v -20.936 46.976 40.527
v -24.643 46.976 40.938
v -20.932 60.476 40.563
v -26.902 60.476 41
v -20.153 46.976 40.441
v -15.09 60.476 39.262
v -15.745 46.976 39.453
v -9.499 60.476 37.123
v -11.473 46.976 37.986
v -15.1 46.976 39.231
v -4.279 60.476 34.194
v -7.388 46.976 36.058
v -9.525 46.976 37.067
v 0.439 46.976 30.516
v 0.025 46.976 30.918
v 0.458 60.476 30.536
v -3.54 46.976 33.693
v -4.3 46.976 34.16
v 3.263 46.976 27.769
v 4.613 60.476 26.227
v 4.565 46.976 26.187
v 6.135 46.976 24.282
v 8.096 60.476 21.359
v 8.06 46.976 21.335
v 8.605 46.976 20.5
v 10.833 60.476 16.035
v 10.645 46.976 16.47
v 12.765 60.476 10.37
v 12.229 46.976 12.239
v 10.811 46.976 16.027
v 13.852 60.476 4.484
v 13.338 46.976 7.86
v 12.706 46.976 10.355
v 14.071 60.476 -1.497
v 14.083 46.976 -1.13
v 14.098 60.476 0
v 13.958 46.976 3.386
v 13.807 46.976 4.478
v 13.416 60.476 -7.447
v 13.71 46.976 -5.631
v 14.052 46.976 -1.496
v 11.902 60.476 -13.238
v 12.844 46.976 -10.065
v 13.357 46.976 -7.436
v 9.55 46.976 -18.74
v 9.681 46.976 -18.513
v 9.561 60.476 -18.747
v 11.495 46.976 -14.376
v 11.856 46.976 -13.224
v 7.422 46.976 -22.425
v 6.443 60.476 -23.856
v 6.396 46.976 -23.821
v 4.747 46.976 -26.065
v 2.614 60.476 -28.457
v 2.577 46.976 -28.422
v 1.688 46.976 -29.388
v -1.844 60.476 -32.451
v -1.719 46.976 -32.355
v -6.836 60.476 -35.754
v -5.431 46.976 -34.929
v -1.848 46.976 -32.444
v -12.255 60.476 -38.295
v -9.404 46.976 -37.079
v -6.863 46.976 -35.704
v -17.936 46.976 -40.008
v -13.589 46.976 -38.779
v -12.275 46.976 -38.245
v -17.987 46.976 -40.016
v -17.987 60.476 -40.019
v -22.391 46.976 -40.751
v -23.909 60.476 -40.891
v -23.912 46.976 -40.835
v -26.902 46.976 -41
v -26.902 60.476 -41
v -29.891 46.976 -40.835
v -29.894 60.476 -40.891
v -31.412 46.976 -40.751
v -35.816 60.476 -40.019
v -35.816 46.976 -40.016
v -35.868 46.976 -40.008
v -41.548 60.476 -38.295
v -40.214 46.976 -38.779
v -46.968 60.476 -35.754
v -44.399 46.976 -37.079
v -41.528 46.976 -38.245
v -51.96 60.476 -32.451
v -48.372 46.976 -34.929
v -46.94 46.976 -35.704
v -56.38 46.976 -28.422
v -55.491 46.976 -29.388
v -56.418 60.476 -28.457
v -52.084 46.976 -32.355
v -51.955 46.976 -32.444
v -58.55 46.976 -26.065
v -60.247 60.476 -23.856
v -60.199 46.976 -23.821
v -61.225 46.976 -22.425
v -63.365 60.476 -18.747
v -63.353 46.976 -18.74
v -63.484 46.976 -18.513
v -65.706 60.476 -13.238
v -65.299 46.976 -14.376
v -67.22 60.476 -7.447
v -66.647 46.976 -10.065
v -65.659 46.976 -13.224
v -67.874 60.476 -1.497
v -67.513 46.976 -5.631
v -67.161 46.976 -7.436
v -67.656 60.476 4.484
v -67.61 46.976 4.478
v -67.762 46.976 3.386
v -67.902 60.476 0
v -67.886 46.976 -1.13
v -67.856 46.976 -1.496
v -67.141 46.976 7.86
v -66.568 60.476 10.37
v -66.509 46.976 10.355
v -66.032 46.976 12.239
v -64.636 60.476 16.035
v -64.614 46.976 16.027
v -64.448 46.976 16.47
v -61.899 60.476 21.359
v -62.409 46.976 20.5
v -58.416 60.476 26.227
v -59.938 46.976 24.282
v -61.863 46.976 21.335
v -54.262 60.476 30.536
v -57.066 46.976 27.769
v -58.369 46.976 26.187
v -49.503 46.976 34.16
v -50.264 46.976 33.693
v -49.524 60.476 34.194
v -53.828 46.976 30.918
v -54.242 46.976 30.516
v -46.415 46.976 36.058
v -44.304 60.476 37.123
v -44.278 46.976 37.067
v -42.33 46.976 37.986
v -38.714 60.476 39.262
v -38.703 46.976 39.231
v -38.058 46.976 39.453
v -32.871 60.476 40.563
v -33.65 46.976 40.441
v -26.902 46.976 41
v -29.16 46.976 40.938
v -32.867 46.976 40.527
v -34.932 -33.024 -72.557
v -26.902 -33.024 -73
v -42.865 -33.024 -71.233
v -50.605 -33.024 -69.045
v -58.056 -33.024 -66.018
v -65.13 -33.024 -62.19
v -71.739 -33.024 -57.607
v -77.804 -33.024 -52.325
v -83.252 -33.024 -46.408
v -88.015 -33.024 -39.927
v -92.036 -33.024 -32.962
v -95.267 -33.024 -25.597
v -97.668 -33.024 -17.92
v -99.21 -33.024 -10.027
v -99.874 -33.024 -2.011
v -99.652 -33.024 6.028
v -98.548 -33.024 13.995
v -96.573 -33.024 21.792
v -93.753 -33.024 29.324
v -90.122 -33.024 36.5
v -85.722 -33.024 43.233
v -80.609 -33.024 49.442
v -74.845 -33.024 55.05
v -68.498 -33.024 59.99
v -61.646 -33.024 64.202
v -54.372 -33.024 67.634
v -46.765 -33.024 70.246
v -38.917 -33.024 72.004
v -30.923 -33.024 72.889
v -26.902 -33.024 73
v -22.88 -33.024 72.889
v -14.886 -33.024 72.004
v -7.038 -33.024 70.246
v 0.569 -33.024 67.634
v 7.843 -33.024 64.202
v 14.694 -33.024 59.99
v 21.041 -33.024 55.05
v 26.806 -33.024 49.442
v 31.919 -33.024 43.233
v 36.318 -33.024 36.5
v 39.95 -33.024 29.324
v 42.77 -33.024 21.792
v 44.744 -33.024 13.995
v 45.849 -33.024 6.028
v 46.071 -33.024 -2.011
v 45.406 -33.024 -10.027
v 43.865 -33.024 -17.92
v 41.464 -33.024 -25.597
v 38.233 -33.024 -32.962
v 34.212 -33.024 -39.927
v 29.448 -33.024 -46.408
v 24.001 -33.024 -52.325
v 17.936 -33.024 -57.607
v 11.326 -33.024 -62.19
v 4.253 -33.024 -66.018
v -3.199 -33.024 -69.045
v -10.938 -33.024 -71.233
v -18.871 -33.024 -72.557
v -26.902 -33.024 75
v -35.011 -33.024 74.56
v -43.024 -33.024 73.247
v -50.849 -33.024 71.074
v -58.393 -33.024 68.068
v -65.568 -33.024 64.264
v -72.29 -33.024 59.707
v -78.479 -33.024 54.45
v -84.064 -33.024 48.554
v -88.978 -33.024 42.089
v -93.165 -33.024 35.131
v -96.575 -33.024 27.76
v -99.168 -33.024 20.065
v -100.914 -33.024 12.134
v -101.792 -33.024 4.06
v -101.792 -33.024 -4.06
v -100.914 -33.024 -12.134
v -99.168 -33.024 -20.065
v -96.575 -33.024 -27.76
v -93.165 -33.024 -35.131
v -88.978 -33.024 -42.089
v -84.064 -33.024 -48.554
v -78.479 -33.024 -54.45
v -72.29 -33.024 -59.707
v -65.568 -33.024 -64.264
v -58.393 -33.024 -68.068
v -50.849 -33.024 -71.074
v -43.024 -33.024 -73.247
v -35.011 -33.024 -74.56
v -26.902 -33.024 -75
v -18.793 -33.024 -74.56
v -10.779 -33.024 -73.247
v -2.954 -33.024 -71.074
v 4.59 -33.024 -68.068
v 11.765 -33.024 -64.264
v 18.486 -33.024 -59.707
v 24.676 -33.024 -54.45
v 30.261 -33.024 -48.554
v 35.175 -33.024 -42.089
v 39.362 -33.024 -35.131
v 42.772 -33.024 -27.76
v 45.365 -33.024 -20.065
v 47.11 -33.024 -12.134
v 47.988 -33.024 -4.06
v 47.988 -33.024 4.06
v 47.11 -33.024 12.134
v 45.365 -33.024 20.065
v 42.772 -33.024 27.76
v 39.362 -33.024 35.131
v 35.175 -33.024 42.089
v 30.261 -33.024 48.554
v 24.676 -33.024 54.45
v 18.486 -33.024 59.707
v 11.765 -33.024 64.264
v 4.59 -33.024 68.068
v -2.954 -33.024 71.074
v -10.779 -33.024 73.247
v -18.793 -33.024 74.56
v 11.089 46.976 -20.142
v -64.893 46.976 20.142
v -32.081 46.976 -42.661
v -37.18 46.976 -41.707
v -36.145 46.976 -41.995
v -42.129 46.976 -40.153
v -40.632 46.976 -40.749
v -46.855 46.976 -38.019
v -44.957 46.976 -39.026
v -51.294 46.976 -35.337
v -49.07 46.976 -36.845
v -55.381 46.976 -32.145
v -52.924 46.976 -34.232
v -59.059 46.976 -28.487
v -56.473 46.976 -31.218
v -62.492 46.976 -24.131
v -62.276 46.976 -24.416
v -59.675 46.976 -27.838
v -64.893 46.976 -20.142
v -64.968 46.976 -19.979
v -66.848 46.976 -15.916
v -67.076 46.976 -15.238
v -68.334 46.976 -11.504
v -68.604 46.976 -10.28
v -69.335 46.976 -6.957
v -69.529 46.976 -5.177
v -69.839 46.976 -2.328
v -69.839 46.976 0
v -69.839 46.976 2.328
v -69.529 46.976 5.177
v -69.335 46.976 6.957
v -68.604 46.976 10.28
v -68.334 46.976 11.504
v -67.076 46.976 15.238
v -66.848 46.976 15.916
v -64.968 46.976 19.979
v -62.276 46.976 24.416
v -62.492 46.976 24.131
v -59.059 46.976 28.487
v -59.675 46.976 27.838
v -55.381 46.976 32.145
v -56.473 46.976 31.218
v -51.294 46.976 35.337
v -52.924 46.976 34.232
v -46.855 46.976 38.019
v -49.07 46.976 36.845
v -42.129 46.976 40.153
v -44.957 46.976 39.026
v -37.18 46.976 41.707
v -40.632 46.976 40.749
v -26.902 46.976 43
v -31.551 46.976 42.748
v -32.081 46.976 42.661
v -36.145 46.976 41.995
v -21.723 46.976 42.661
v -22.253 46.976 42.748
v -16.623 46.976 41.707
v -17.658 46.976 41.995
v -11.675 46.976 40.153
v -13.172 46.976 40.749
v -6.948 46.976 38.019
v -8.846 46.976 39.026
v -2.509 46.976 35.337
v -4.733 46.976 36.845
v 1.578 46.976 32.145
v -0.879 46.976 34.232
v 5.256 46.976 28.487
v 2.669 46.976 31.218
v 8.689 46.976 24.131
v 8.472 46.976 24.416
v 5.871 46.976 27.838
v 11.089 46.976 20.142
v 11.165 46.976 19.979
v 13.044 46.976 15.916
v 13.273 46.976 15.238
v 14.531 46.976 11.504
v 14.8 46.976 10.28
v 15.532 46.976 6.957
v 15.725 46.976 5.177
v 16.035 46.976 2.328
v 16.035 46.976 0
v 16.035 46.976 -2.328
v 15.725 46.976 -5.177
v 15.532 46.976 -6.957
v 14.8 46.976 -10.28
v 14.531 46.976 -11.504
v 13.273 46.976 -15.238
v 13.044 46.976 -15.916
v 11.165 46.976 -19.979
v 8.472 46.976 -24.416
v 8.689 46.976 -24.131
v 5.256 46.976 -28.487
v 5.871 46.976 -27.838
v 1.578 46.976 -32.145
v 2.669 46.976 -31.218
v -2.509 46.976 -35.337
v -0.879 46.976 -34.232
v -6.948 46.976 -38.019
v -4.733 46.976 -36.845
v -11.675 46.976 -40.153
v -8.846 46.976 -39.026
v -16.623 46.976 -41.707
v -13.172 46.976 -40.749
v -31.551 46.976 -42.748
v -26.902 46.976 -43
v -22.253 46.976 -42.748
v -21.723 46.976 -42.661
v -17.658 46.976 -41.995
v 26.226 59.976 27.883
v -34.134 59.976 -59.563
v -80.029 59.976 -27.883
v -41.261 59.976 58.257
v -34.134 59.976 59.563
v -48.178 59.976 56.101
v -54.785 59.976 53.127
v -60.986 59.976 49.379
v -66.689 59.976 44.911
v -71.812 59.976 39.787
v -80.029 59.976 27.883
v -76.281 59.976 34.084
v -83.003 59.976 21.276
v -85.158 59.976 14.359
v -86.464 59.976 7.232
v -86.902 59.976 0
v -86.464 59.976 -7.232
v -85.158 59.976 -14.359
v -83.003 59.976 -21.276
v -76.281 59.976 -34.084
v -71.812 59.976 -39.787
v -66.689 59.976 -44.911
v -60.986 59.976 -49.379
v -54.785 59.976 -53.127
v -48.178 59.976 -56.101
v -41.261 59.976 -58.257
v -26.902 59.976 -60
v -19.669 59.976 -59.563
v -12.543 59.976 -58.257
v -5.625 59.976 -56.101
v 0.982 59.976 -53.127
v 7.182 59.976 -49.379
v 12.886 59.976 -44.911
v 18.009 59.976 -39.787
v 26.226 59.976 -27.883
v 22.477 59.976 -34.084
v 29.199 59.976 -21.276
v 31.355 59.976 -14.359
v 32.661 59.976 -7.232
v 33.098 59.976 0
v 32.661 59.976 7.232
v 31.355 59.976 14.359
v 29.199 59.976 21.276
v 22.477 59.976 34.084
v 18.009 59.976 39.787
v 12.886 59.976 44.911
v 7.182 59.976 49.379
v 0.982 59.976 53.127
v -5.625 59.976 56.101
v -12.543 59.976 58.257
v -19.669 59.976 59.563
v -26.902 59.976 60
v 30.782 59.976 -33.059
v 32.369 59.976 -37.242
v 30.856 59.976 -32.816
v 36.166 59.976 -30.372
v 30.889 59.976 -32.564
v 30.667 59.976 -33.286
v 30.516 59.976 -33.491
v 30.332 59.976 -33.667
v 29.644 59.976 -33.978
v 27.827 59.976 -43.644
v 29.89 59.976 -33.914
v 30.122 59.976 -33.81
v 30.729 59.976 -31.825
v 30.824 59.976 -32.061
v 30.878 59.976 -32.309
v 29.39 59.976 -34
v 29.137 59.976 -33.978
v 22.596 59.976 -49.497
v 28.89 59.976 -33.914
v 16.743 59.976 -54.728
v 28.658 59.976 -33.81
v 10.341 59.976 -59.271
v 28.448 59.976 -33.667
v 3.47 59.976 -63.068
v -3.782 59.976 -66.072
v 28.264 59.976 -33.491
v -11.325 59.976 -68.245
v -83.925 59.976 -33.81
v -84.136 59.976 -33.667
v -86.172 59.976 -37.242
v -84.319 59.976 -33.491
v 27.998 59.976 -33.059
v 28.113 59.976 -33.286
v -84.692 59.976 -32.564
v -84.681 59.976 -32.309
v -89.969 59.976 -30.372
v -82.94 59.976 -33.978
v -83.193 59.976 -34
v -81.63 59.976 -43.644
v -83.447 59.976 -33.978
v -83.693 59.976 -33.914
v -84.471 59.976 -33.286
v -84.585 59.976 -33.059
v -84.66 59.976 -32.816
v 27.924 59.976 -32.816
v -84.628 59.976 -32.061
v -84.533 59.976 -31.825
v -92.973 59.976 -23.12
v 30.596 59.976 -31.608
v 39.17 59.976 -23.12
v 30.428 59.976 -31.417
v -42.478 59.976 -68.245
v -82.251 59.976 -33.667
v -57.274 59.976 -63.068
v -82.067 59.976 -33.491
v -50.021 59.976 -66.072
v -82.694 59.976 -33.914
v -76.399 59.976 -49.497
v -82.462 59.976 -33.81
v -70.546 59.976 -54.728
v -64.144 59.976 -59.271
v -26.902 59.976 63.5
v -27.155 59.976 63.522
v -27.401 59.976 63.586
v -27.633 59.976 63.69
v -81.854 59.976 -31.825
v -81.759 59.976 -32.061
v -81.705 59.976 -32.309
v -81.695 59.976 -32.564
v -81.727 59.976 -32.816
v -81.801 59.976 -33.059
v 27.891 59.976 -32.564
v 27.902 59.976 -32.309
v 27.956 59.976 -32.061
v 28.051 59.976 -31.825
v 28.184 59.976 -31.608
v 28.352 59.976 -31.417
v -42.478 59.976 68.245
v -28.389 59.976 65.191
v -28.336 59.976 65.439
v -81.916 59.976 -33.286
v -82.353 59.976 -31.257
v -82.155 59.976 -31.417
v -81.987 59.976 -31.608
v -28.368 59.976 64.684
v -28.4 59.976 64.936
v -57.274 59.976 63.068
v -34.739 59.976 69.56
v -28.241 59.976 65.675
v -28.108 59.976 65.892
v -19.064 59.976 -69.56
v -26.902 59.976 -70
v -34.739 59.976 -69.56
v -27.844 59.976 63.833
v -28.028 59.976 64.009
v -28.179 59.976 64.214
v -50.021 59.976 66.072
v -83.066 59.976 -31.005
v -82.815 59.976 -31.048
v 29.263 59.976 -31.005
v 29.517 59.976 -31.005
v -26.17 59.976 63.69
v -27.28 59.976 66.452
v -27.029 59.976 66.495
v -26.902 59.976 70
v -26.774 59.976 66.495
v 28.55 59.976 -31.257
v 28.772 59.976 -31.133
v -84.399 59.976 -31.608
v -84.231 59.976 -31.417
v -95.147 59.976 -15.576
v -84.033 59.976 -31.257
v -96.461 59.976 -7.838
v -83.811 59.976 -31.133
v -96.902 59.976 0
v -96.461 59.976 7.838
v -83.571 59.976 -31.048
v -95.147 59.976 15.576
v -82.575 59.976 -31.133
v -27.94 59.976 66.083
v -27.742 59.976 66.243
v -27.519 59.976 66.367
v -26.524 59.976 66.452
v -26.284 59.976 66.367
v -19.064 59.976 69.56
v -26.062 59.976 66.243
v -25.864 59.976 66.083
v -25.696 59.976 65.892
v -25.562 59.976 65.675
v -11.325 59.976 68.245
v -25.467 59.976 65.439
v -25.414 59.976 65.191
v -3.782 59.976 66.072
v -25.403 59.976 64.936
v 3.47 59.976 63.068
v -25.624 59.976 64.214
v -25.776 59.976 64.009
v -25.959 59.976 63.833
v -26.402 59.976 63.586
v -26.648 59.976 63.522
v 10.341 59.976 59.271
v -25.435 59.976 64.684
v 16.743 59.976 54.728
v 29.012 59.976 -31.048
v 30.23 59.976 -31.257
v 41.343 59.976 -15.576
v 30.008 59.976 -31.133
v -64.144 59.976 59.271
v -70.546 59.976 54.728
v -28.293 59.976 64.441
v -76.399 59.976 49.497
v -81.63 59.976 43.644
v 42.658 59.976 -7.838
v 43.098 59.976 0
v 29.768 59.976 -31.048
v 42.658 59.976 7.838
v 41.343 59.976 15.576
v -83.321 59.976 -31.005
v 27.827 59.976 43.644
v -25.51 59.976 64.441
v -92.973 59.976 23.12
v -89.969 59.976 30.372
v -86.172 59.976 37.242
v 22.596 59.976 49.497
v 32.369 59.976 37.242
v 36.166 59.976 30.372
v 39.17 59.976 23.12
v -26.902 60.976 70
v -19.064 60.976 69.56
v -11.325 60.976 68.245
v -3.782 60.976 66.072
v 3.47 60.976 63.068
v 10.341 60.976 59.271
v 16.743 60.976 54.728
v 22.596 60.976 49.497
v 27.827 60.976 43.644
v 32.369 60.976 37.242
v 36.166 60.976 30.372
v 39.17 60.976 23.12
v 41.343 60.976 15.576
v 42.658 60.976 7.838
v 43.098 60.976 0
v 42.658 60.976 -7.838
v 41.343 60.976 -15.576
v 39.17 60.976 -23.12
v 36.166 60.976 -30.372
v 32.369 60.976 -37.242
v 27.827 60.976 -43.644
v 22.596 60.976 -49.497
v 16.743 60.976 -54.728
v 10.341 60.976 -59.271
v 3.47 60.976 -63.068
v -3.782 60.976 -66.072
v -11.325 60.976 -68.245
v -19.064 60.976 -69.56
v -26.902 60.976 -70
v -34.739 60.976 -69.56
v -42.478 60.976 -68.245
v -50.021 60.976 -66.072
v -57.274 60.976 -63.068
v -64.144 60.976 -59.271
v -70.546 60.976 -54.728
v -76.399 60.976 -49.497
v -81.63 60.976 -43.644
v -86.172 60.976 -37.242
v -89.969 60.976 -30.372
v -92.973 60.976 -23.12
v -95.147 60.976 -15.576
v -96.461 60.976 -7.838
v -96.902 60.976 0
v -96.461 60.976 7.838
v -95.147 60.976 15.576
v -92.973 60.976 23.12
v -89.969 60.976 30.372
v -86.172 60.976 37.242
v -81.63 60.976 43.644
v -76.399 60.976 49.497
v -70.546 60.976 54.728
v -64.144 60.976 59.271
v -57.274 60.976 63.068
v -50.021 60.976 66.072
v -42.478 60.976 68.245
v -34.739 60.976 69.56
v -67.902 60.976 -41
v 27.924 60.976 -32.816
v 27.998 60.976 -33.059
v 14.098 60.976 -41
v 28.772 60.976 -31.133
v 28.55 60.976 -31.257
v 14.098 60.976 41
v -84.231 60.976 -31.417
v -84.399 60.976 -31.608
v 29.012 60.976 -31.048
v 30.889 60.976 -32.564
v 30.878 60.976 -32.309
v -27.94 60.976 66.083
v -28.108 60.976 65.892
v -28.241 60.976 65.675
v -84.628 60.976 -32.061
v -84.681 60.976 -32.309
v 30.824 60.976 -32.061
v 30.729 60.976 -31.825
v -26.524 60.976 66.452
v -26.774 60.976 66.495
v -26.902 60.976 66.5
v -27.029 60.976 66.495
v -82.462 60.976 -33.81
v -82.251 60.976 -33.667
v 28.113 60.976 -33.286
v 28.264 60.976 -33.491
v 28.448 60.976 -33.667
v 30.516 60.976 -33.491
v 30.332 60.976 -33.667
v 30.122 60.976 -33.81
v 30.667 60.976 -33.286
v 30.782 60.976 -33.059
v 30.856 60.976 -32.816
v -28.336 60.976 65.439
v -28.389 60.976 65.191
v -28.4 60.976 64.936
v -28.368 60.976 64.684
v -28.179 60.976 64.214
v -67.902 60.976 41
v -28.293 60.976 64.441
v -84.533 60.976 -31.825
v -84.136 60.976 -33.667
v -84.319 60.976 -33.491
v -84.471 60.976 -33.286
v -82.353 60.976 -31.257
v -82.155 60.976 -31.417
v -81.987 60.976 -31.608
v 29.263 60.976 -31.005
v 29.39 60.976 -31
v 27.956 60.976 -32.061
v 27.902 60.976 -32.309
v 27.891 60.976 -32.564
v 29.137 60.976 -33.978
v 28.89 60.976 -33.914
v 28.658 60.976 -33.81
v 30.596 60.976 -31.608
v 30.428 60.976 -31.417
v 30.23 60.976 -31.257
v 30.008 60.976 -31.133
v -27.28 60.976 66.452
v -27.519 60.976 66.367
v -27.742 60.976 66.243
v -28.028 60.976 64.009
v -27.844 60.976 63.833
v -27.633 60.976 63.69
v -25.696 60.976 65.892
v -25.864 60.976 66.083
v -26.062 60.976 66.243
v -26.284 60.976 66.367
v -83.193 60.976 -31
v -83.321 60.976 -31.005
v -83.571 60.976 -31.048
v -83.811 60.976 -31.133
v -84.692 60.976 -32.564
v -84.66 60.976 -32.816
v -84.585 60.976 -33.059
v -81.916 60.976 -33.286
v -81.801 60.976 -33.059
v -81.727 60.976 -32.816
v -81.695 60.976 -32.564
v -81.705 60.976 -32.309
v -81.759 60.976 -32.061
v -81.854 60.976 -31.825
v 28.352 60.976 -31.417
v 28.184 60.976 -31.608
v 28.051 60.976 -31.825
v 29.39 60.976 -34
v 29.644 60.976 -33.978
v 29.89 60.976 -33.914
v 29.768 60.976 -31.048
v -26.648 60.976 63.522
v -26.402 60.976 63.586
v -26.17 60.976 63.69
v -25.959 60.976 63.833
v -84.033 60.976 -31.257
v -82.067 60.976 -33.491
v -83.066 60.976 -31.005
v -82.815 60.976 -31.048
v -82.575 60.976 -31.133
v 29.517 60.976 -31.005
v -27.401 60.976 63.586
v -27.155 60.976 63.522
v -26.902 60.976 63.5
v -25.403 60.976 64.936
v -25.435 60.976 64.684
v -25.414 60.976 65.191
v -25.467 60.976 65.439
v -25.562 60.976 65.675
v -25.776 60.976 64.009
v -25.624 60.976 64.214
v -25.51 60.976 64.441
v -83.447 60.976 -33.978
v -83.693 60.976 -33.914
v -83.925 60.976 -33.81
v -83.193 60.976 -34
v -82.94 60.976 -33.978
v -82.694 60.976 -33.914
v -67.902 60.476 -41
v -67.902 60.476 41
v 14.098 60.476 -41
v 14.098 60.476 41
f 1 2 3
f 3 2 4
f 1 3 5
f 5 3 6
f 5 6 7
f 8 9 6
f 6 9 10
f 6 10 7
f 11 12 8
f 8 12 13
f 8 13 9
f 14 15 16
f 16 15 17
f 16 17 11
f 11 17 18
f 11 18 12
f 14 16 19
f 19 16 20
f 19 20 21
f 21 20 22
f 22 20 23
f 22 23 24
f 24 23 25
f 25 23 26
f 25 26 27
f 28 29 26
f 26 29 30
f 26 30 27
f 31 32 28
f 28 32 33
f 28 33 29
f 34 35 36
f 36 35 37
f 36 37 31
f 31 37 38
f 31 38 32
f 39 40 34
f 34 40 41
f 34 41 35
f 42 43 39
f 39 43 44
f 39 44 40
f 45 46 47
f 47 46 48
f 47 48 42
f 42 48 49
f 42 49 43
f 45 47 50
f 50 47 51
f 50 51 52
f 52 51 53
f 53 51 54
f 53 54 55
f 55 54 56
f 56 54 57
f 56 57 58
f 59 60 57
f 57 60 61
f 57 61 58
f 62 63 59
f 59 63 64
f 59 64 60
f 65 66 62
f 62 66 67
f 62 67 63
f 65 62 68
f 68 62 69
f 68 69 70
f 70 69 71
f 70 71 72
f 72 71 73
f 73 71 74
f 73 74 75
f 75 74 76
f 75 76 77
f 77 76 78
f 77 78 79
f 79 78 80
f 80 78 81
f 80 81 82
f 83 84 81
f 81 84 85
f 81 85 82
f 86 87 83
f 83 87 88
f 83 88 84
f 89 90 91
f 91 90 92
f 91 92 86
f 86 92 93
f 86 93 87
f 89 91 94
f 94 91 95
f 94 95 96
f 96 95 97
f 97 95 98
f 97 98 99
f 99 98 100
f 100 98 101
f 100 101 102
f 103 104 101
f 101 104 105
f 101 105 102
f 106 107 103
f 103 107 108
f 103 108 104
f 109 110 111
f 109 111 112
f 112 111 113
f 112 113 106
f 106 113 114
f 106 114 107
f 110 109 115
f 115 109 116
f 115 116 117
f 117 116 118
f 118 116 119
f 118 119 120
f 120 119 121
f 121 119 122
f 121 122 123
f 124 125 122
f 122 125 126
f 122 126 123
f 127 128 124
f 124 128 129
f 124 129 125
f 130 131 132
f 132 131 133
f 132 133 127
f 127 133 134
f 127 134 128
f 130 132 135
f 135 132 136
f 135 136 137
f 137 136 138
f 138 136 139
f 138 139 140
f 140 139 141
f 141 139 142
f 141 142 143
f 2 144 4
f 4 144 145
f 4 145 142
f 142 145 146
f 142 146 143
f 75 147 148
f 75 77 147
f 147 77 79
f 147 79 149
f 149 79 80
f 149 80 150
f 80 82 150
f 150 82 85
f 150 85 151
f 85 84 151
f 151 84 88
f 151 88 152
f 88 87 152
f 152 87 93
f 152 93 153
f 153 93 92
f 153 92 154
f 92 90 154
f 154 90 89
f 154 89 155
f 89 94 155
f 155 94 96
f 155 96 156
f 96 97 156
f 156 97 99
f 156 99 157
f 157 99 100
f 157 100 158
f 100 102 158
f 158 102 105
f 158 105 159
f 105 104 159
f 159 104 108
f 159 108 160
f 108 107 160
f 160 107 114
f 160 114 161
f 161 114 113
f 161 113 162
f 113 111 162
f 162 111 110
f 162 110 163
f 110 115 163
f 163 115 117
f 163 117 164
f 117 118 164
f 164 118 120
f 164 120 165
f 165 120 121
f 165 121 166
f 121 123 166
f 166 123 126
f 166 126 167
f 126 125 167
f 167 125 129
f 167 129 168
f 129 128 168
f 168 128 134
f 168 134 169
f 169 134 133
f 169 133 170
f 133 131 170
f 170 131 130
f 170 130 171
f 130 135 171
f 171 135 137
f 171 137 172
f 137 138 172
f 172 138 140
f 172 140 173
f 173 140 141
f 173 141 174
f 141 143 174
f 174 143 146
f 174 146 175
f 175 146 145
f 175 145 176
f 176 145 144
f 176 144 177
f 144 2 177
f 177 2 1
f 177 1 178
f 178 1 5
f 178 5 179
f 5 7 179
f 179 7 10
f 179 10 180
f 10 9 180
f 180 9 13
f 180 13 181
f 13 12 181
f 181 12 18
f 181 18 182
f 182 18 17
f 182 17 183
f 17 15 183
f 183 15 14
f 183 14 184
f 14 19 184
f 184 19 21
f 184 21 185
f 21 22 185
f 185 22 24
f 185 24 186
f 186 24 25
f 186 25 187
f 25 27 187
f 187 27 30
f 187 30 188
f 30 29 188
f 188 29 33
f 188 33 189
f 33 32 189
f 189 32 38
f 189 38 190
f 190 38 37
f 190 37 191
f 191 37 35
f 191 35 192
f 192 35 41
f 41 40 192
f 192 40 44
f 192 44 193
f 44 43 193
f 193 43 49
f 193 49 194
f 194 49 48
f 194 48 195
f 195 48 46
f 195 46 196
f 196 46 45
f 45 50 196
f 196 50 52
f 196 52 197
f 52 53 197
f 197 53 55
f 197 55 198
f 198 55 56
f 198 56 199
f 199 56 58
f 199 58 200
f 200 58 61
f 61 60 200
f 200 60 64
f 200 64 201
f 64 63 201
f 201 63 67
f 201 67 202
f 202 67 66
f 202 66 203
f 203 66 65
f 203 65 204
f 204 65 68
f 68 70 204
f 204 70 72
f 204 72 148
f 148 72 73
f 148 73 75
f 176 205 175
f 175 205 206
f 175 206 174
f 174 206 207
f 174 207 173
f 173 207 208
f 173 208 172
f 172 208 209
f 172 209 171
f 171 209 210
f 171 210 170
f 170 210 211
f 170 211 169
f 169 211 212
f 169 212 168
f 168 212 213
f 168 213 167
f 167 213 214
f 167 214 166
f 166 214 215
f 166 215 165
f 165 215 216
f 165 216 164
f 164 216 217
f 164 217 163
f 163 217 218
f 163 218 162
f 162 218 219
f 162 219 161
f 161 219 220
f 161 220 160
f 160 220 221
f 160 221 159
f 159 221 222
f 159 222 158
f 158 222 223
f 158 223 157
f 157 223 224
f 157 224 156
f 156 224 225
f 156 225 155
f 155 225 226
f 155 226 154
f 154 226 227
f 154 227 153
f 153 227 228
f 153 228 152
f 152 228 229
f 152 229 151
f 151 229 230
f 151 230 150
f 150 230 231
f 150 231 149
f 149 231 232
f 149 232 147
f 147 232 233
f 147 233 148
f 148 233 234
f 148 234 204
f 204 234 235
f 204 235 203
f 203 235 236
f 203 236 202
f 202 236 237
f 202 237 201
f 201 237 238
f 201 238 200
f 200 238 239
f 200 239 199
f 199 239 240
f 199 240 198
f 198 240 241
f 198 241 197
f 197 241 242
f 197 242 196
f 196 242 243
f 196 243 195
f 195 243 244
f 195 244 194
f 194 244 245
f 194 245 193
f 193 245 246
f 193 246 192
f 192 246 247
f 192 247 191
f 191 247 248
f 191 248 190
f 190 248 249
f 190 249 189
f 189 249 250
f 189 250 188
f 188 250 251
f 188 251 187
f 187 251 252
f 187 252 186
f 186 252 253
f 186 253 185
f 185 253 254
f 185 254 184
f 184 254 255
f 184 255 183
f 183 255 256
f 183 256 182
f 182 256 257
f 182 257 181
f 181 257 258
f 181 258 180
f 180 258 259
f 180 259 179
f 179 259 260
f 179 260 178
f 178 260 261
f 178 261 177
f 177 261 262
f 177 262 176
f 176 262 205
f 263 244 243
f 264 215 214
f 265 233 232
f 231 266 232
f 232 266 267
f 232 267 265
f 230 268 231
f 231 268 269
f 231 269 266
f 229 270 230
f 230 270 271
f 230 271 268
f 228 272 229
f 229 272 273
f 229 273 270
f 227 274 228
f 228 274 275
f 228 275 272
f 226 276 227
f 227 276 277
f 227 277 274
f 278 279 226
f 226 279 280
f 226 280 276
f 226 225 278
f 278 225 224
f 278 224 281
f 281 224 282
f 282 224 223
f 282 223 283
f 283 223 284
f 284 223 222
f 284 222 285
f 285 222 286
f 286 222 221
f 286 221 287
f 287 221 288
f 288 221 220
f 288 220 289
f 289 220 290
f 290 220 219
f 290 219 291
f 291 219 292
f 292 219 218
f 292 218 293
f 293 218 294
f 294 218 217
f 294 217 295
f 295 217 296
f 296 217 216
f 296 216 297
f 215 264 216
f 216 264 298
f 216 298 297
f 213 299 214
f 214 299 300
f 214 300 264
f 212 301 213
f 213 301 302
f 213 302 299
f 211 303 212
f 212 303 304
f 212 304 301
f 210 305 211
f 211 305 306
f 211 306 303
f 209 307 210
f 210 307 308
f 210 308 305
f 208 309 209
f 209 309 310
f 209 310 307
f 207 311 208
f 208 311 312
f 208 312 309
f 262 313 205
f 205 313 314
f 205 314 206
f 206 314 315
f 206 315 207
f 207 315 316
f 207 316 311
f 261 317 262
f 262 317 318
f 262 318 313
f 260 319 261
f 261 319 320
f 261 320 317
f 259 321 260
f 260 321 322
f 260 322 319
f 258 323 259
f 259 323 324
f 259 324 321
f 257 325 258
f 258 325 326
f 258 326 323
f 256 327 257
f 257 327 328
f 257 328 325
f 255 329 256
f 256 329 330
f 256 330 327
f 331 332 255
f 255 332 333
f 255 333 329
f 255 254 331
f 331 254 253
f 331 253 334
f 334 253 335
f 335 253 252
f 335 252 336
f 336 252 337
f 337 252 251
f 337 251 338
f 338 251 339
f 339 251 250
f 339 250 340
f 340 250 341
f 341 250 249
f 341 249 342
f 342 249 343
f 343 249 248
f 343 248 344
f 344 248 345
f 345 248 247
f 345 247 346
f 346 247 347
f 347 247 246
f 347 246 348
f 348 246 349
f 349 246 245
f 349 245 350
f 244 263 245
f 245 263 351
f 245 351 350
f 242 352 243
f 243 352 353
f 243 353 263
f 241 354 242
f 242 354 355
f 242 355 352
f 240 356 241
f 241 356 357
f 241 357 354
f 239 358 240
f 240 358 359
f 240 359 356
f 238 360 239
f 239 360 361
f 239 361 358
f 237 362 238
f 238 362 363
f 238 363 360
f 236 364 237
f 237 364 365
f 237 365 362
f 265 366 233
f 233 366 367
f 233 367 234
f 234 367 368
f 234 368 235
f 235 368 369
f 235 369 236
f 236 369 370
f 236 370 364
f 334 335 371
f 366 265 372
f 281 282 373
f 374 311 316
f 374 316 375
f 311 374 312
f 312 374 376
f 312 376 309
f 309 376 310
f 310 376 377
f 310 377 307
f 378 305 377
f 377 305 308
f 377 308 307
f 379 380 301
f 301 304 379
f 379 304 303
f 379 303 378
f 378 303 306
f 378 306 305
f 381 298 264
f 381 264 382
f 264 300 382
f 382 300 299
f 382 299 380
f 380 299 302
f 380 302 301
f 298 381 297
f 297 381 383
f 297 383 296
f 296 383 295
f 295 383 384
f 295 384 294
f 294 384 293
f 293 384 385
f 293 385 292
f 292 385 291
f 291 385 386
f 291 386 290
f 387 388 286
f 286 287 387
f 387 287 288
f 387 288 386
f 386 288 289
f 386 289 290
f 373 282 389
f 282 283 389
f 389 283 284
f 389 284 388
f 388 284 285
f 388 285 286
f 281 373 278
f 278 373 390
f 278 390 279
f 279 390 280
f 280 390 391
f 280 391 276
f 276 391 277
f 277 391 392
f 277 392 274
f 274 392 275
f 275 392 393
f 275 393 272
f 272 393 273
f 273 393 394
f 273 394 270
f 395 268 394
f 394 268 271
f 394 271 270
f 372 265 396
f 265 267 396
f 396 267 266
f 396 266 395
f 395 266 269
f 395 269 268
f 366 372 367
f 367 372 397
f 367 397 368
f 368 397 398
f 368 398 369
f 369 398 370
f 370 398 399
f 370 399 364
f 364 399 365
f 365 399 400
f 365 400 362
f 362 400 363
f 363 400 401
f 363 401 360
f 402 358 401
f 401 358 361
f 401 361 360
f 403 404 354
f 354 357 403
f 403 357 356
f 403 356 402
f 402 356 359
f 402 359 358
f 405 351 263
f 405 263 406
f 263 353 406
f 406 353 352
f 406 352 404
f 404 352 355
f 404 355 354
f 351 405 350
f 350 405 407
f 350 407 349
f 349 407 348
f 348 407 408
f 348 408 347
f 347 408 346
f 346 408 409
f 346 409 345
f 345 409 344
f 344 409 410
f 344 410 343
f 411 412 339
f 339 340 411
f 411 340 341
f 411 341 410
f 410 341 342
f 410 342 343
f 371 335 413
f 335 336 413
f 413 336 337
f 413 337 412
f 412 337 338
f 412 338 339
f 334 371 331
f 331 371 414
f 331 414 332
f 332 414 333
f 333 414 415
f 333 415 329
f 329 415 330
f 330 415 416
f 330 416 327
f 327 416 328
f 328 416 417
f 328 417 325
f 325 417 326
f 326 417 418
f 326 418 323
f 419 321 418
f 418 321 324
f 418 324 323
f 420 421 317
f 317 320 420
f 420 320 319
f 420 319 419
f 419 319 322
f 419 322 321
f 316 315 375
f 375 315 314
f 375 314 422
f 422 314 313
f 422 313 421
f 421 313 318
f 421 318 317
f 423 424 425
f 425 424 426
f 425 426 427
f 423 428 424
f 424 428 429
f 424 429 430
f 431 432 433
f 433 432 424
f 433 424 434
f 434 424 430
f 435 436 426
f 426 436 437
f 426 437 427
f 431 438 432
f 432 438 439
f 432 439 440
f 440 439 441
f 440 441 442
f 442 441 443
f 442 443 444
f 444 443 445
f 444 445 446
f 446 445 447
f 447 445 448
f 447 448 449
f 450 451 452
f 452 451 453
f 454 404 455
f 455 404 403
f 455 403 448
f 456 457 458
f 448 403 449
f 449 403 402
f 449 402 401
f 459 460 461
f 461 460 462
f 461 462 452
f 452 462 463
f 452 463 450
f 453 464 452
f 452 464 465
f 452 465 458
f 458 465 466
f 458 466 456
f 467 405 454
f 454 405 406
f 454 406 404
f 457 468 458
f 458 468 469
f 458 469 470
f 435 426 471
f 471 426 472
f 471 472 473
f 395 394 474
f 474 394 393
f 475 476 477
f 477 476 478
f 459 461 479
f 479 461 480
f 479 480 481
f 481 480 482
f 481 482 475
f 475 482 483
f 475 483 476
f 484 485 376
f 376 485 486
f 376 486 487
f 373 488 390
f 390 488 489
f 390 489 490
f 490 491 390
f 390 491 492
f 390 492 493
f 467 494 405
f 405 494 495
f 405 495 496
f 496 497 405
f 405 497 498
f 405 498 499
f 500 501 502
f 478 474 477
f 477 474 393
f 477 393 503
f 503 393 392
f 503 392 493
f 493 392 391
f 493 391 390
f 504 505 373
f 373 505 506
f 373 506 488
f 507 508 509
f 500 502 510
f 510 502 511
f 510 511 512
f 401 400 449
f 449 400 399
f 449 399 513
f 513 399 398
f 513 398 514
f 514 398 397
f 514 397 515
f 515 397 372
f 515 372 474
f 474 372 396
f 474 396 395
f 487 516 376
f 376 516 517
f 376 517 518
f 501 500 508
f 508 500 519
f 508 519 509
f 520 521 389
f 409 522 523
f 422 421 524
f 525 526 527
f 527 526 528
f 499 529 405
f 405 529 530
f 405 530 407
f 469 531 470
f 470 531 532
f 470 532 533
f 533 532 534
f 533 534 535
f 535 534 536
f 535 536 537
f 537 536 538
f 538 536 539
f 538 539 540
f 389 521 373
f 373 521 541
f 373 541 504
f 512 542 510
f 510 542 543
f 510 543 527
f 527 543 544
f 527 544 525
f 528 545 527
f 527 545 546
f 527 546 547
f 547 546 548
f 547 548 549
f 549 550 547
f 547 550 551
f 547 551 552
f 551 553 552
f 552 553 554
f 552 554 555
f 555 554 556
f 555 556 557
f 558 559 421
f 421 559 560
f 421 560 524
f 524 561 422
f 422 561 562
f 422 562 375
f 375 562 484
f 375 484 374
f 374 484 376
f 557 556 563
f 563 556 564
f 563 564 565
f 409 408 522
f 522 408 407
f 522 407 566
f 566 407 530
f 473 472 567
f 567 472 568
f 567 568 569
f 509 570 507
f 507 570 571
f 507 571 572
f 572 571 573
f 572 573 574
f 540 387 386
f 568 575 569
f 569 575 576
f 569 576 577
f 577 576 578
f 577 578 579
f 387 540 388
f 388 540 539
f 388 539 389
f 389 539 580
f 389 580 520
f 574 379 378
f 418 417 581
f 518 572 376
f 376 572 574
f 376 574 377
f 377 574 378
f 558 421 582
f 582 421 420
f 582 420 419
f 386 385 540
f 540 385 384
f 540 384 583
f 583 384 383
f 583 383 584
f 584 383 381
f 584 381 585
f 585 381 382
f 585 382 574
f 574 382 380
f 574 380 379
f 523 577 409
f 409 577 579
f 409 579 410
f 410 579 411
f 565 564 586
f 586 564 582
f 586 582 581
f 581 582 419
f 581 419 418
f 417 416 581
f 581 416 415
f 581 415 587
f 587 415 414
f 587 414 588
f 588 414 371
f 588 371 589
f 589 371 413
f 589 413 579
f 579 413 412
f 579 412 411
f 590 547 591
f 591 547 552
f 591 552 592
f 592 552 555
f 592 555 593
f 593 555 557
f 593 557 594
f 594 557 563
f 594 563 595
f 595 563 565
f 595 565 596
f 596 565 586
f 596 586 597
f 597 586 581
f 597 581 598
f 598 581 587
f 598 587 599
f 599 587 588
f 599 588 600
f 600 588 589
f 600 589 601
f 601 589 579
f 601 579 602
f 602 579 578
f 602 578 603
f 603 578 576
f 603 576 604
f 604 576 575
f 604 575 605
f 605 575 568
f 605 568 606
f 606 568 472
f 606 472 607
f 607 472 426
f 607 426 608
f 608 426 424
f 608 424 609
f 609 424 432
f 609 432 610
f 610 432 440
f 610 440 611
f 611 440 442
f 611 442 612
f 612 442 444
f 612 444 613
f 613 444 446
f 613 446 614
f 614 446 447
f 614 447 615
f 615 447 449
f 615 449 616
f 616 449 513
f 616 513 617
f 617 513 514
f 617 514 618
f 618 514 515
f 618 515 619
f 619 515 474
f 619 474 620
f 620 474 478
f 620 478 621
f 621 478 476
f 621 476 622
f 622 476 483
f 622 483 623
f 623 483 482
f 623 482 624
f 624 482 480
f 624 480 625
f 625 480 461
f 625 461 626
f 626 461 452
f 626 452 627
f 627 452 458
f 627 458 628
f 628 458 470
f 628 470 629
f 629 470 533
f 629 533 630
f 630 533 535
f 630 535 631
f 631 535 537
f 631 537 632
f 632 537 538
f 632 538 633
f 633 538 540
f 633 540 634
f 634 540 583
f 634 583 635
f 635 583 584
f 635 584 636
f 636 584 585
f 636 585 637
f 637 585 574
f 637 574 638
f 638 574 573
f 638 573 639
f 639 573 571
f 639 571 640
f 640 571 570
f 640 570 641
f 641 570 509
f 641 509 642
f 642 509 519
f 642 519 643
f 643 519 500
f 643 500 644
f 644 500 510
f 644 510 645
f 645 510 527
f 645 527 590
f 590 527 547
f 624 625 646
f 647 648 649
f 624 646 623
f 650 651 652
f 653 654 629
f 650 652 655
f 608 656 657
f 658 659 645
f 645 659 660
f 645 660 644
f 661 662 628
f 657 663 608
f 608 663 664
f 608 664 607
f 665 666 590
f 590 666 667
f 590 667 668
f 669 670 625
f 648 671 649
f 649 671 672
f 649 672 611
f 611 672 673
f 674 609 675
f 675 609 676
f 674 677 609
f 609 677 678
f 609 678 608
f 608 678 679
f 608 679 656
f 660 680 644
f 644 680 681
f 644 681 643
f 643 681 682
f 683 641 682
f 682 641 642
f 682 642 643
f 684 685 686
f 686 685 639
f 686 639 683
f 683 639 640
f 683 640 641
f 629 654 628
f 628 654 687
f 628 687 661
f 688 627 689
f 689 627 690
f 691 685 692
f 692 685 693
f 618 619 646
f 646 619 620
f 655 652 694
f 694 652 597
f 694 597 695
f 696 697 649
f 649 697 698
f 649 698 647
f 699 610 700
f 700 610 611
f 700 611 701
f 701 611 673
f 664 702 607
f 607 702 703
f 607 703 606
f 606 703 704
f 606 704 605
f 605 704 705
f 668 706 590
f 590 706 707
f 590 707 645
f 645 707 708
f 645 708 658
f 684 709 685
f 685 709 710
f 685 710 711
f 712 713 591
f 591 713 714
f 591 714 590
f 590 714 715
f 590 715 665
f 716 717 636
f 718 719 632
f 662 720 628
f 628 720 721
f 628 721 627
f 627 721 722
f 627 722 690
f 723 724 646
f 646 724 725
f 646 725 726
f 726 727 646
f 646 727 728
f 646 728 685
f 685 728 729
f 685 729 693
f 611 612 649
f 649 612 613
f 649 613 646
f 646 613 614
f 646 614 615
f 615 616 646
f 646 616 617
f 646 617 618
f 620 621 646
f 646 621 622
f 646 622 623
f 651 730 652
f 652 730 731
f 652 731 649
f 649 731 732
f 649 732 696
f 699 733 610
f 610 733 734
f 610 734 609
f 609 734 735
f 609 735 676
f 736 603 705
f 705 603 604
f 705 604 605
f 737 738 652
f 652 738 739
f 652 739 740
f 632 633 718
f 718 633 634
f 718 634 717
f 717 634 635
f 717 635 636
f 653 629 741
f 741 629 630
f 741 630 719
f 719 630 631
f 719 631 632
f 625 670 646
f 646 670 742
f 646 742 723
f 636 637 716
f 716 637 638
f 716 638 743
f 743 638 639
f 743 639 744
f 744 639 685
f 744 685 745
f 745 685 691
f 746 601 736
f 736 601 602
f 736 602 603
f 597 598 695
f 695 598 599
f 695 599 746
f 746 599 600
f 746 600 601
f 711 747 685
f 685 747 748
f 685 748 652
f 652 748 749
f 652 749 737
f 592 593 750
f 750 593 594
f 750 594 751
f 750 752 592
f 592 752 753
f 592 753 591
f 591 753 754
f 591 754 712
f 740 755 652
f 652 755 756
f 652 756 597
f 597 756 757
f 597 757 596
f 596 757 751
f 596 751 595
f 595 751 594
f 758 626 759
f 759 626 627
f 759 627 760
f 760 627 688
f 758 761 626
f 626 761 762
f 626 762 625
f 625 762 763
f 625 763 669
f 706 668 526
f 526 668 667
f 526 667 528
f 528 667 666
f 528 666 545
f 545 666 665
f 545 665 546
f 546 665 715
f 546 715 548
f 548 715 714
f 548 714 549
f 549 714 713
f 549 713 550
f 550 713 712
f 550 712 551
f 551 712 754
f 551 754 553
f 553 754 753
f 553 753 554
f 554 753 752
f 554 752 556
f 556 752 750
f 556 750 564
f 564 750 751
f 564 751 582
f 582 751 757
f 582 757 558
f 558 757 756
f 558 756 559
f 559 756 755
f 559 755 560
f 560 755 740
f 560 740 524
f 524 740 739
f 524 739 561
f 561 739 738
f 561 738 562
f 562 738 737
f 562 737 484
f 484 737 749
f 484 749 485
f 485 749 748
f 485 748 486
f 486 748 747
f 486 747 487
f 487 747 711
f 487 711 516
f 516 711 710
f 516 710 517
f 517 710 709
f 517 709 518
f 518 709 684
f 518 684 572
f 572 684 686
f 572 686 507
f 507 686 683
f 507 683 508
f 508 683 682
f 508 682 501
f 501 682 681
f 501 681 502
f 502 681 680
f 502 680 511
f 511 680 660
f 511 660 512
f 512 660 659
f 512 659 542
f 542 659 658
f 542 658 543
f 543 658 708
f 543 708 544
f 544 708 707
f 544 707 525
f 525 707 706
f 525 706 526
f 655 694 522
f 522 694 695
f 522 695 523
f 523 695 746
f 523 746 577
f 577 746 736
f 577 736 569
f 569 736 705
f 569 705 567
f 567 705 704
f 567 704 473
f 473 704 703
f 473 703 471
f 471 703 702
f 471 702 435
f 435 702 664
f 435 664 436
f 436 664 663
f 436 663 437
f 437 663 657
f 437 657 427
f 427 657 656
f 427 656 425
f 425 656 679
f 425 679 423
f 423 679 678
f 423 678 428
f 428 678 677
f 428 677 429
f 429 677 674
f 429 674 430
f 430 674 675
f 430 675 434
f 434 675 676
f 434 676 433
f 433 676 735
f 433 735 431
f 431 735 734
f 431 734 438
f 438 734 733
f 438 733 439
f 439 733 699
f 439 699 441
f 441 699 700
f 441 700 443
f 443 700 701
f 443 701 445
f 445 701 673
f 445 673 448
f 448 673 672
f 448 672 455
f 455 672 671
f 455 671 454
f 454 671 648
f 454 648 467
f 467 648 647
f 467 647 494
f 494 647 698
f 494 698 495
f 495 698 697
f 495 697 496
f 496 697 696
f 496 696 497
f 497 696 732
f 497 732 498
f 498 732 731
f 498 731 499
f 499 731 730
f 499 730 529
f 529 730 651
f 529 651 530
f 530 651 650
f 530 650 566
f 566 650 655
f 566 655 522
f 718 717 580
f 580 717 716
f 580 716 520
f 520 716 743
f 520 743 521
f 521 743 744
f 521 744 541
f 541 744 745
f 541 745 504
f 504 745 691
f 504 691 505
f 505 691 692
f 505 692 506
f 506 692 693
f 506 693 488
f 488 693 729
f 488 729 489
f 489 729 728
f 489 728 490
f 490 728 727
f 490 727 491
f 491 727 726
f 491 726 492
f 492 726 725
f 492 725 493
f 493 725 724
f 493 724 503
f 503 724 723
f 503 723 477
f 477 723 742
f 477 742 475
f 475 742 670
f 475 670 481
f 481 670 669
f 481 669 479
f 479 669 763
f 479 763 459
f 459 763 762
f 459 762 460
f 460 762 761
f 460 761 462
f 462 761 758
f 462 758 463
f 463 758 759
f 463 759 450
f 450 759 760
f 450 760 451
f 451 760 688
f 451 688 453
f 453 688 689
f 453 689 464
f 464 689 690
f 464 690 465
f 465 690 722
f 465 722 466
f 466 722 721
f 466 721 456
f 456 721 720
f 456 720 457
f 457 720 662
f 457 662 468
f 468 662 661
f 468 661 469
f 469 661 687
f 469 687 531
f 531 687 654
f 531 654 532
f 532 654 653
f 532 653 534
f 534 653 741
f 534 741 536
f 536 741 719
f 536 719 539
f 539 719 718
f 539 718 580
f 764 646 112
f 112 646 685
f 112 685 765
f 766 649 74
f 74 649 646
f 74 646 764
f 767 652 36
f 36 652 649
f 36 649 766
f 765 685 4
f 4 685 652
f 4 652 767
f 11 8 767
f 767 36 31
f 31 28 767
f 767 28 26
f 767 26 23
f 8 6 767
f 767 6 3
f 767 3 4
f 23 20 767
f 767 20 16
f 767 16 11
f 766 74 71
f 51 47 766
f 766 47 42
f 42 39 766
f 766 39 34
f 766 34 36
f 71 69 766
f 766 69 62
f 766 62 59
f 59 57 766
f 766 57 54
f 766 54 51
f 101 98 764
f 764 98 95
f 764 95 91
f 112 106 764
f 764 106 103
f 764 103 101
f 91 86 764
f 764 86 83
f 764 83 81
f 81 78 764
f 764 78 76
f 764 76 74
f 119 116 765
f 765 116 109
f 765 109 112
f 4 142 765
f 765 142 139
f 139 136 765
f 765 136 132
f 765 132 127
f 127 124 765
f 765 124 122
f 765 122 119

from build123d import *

# Parameters (mm, degrees)
CROQUIS6_R            = 1.5
CORTAR_EXTRUIR9_DEPTH = 10
CROQUIS2_W            = 82
CROQUIS2_H            = 82
CORTAR_EXTRUIR1_DEPTH = 11.5
CROQUIS4_W            = 14
CROQUIS4_H            = 8.5
CORTAR_EXTRUIR2_DEPTH = 10.5


with BuildPart() as part:
    # Croquis1 → Revolución1 (revolve)
    with BuildSketch(Plane.XY):
        Polygon((-67.901642817, 46.97611702), (-67.901642817, 60.97611702), (-96.901642817, 60.97611702), (-96.901642817, 59.97611702), (-86.901642817, 59.97611702), (-69.901642817, 46.97611702), (-101.901642817, -33.02388298), (-99.901642817, -33.02388298), align=None)
    revolve(axis=Axis((-26.901642817, 46.97611702, 0), (0, -1, 0)))

    # Croquis6 → Cortar-Extruir9 (cut)
    with BuildSketch(Plane.XZ.offset(-59.97611702)):
        with Locations((-26.901642817, 65)):
            Circle(CROQUIS6_R)
        with Locations((29.390008429, -32.5)):
            Circle(CROQUIS6_R)
        with Locations((-83.193294063, -32.5)):
            Circle(CROQUIS6_R)
    extrude(amount=-CORTAR_EXTRUIR9_DEPTH, mode=Mode.SUBTRACT)

    # Croquis2 → Cortar-Extruir1 (cut)
    with BuildSketch(Plane(origin=(0, 71.97611702, 0), x_dir=(1, 0, 0), z_dir=(0, 1, 0))):
        with Locations((-26.901642817, 0)):
            Rectangle(CROQUIS2_W, CROQUIS2_H)
    extrude(amount=-CORTAR_EXTRUIR1_DEPTH, mode=Mode.SUBTRACT)

    # Croquis4 → Cortar-Extruir2 (cut)
    with BuildSketch(Plane.ZY.offset(-25.098357183)):
        with Locations((0, 77.22611702)):
            Rectangle(CROQUIS4_W, CROQUIS4_H)
    extrude(amount=-CORTAR_EXTRUIR2_DEPTH, mode=Mode.SUBTRACT)


solid = part.part
